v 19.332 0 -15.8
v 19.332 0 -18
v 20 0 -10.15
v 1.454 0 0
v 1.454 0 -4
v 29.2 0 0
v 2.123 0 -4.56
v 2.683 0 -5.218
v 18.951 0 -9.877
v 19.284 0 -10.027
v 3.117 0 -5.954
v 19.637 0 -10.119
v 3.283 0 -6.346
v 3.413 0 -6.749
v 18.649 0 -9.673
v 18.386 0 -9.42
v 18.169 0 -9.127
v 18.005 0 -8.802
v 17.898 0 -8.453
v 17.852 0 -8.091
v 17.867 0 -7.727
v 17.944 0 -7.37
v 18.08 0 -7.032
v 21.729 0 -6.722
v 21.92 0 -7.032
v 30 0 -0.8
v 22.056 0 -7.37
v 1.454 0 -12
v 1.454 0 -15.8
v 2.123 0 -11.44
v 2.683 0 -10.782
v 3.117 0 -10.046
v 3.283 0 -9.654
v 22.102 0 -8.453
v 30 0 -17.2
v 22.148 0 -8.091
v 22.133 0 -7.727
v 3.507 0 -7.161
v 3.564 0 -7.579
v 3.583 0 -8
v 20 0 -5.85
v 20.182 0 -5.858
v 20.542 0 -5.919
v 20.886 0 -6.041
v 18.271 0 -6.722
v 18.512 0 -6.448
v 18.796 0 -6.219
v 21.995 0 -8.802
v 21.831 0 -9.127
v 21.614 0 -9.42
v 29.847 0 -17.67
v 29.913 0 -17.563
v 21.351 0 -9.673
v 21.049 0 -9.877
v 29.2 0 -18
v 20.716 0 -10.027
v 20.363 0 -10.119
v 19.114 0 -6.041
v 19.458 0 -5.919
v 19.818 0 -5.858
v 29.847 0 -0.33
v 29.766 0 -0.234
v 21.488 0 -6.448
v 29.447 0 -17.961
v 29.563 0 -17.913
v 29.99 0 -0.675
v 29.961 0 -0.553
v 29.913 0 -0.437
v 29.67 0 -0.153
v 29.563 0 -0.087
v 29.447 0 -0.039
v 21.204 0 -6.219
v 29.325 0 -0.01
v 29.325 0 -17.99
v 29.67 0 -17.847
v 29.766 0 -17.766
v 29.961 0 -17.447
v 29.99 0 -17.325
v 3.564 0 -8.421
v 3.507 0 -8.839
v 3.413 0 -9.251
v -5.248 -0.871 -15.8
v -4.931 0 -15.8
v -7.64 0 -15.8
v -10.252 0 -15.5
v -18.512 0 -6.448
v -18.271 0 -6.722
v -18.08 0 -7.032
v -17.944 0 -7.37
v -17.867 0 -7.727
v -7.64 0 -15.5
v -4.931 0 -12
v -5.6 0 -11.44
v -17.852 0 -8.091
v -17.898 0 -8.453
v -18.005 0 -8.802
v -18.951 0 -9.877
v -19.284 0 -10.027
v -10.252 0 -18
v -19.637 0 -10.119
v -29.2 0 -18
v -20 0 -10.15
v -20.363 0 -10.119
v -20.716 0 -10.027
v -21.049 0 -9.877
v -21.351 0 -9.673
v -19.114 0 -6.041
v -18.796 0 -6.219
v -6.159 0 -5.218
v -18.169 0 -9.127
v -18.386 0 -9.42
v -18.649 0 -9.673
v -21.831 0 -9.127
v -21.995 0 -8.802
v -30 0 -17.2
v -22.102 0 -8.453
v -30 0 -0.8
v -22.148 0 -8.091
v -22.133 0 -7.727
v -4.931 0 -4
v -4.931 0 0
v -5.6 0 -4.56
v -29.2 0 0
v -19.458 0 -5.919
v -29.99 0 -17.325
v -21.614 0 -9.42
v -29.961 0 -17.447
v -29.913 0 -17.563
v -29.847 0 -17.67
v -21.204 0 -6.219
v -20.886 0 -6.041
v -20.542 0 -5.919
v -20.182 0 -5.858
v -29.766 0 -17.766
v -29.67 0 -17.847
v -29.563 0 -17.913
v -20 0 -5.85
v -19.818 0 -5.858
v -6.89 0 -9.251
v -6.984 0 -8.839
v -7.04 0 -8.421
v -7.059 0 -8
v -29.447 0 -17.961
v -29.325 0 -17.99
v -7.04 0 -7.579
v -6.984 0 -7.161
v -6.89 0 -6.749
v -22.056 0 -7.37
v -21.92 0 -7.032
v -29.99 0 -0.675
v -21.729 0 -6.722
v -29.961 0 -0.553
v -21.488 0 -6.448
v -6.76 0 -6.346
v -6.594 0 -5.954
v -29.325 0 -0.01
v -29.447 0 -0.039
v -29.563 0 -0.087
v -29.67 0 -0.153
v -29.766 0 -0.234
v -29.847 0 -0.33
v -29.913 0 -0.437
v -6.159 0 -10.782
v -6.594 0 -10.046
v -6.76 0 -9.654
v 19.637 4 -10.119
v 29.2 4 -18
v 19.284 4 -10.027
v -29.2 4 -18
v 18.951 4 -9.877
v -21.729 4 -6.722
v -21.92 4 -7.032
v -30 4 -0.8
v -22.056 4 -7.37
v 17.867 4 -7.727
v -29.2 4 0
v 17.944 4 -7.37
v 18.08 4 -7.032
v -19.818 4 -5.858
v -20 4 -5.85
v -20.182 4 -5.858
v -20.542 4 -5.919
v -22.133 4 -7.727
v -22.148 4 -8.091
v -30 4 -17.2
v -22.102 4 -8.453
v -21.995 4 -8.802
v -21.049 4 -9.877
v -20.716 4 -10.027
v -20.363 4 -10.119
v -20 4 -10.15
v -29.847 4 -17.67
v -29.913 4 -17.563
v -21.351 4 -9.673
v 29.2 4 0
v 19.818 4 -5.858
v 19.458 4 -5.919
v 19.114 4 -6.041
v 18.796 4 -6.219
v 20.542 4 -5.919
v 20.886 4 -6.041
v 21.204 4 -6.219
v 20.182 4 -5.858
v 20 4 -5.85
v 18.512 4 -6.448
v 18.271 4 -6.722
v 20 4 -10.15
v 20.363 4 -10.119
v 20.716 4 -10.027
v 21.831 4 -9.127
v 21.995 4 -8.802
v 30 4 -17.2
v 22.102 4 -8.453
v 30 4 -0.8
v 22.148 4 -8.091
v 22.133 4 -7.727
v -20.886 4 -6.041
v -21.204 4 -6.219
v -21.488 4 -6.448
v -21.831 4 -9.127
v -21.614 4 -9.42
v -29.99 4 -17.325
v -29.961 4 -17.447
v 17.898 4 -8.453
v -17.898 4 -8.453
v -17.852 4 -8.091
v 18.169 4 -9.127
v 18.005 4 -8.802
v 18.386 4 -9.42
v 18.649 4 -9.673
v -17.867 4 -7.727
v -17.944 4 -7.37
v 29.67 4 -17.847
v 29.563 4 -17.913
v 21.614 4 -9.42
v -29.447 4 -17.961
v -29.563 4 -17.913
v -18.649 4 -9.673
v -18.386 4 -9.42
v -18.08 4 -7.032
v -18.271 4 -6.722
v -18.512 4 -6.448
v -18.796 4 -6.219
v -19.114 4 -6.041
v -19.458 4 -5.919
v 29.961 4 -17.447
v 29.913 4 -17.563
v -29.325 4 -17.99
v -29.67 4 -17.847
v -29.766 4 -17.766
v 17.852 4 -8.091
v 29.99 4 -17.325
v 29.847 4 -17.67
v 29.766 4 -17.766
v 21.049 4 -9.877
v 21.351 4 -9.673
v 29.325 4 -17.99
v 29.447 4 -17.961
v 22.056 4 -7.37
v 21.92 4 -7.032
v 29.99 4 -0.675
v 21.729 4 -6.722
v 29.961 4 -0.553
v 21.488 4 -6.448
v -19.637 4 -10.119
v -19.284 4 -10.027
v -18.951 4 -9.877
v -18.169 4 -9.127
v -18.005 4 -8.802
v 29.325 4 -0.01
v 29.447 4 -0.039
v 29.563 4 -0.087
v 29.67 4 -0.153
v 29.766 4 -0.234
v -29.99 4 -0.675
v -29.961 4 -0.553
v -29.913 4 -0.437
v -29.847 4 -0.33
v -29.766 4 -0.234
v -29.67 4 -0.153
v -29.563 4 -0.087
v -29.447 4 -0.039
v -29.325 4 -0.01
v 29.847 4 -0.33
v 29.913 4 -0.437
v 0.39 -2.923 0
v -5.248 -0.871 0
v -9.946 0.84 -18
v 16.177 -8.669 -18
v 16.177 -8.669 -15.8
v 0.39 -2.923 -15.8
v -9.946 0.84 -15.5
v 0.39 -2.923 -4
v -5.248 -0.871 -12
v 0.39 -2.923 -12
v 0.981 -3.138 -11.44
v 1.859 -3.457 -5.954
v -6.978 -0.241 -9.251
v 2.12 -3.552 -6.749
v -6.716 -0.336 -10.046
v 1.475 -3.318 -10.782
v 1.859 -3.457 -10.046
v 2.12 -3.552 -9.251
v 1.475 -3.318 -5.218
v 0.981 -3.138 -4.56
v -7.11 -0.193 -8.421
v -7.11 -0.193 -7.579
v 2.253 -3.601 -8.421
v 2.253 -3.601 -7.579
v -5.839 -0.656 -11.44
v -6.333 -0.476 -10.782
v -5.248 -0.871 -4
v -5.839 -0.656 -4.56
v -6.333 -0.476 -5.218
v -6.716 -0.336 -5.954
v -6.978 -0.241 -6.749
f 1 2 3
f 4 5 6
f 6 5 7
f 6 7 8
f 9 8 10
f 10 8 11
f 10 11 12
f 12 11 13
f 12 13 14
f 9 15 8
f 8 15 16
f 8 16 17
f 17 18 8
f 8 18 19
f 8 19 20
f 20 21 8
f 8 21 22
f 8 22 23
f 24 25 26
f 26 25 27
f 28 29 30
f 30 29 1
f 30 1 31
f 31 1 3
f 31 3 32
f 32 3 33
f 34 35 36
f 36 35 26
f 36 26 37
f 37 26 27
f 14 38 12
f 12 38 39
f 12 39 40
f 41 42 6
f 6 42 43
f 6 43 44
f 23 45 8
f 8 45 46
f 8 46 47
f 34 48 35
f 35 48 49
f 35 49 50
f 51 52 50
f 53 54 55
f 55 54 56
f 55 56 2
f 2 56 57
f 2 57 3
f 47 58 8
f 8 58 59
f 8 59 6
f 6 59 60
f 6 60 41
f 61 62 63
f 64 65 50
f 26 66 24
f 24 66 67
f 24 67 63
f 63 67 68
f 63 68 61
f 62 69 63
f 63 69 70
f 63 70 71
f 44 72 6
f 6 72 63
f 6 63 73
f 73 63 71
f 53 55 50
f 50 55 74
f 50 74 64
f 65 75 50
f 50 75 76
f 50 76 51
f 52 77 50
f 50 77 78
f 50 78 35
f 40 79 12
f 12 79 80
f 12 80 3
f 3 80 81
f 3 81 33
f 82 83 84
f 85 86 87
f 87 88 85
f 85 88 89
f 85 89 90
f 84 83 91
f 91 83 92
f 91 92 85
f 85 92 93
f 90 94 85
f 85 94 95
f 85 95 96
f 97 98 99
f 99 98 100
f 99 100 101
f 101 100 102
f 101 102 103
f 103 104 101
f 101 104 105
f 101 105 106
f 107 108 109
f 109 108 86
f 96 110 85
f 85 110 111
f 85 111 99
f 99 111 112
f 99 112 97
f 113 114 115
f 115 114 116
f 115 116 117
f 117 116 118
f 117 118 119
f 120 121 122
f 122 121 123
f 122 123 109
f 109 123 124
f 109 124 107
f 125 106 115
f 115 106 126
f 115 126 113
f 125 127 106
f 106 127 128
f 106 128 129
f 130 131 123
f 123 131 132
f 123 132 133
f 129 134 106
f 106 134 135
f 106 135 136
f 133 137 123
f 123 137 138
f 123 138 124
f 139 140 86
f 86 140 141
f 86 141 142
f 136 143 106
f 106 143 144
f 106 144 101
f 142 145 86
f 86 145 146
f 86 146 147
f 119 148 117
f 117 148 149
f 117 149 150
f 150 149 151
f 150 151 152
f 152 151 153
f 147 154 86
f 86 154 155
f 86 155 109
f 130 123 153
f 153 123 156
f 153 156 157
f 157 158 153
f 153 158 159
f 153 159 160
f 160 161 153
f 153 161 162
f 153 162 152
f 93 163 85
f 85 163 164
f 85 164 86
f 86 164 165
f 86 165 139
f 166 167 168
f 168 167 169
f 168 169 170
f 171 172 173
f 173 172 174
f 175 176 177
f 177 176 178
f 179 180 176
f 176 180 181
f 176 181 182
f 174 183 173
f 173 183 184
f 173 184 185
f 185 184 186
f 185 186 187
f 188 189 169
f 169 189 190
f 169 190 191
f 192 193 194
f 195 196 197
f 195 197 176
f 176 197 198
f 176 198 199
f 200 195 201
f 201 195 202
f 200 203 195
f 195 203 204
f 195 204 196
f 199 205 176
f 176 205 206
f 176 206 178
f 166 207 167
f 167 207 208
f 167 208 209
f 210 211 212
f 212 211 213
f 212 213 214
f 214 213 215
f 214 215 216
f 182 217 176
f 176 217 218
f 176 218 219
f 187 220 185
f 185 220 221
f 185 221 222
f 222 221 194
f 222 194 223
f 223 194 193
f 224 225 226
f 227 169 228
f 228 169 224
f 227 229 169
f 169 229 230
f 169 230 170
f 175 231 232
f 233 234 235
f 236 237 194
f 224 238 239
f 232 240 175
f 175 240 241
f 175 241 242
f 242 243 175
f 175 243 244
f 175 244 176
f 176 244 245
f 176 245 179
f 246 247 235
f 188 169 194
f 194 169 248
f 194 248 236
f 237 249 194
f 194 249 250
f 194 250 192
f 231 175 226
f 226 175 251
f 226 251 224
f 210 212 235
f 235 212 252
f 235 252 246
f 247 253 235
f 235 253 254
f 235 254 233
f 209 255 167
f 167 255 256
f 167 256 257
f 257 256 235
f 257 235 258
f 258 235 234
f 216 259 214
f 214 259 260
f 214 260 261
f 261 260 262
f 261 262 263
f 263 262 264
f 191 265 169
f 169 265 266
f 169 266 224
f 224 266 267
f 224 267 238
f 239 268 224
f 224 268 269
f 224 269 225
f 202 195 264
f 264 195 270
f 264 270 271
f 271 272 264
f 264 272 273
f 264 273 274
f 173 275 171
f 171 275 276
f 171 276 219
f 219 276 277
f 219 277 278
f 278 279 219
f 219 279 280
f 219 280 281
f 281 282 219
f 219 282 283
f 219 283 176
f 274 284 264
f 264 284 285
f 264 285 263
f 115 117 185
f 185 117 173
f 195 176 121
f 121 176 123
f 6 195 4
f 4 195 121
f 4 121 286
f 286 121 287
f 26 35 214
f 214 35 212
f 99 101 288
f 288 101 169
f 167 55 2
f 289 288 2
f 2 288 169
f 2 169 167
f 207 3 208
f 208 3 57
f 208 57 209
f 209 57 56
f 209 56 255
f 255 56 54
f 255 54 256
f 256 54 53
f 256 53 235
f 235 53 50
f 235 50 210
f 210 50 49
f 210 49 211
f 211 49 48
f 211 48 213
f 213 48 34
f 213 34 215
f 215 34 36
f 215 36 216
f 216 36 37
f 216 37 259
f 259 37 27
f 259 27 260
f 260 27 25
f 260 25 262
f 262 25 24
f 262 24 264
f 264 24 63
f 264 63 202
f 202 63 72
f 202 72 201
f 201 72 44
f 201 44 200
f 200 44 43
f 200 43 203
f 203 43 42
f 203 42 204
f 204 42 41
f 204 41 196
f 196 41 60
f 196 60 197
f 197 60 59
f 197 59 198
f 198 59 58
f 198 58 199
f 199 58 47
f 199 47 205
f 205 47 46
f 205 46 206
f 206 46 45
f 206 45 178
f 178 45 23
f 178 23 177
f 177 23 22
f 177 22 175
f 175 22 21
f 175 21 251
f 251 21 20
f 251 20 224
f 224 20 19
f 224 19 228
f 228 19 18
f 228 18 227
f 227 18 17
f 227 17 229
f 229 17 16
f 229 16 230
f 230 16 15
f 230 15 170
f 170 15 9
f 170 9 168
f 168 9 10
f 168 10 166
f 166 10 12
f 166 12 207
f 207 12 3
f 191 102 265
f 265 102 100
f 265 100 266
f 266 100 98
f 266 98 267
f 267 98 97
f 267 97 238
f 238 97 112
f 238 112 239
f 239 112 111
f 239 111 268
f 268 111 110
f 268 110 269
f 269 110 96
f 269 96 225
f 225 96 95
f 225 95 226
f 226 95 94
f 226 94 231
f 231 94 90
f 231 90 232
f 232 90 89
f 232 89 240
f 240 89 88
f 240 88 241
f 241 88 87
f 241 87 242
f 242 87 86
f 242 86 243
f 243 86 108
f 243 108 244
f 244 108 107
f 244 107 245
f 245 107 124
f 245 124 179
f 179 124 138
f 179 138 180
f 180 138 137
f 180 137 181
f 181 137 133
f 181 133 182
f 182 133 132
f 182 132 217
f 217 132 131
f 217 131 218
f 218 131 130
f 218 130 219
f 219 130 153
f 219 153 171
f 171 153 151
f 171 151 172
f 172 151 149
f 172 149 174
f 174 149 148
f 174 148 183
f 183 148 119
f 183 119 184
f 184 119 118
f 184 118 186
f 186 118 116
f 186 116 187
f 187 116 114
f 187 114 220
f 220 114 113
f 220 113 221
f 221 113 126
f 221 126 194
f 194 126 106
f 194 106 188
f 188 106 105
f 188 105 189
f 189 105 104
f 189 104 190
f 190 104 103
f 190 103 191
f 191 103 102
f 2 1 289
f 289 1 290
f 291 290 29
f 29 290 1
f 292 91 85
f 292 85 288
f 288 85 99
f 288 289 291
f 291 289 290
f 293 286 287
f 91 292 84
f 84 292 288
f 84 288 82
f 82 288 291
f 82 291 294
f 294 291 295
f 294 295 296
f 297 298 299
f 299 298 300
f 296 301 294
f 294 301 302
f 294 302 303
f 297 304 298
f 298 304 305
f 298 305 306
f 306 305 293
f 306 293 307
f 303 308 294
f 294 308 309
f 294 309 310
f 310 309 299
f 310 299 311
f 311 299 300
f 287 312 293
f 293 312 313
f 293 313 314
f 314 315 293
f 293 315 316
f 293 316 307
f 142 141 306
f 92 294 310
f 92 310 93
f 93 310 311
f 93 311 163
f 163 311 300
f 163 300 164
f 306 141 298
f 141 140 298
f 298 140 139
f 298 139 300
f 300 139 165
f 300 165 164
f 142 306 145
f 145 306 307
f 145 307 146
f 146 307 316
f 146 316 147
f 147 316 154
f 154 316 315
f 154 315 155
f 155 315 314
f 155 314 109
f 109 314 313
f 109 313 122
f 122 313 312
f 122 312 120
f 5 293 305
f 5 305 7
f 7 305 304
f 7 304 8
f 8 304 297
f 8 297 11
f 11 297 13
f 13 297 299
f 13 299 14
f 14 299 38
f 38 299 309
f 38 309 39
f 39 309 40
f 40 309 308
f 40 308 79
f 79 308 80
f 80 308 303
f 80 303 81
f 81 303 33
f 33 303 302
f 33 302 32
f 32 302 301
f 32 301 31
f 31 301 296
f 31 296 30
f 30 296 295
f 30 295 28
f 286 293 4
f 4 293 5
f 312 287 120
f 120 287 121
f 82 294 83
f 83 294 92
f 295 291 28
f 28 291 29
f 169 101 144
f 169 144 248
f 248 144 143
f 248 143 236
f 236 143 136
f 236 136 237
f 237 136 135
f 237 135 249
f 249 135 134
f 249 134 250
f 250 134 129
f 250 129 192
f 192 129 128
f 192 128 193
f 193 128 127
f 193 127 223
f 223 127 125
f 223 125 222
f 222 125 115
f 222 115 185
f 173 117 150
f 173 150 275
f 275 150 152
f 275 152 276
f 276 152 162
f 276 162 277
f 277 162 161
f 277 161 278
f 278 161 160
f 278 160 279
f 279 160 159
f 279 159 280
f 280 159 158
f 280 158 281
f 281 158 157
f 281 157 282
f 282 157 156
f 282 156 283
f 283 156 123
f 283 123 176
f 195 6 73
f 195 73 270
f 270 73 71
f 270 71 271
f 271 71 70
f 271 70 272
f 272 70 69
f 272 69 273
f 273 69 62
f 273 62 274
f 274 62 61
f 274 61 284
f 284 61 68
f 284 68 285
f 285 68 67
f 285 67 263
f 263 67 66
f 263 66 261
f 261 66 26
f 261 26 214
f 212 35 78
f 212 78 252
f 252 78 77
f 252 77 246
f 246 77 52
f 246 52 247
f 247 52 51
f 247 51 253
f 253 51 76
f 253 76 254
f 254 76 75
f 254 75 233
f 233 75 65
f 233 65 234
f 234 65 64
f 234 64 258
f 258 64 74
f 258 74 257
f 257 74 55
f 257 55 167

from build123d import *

# Parameters (mm, degrees)
SKETCH_1_W          = 60
SKETCH_1_H          = 18
SKETCH_1_R          = 2.15
EXTRUDE_1_DEPTH     = 4
EXTRUDE_3_DEPTH     = 2.2
CUT_EXTRUDE_1_DEPTH = 2.5
EXTRUDE_2_DEPTH     = 3.981010851
FILLET_1_R          = 0.8


with BuildPart() as part:
    # 草图1 → 凸台-拉伸1 (new body)
    with BuildSketch(Plane(origin=(0, 0, 0), x_dir=(1, 0, 0), z_dir=(0, 1, 0))):
        with Locations((0, 9)):
            Rectangle(SKETCH_1_W, SKETCH_1_H)
        with Locations(Location((-20, 8, 0), (0, 0, 270))):
            Circle(SKETCH_1_R, mode=Mode.SUBTRACT)
        with Locations(Location((20, 8, 0), (0, 0, 270))):
            Circle(SKETCH_1_R, mode=Mode.SUBTRACT)
    extrude(amount=EXTRUDE_1_DEPTH)

    # 草图5 → 凸台-拉伸3 (add)
    with BuildSketch(Plane(origin=(0, 0, -18), x_dir=(-1, 0, 0), z_dir=(0, 0, -1))):
        Polygon((-19.332346445, 0), (10.038960076, 0), (10.380980219, -0.939692621), (-15.554536115, -10.379448577), align=None)
    extrude(amount=-EXTRUDE_3_DEPTH)

    # 草图6 → 切除-拉伸1 (cut)
    with BuildSketch(Plane(origin=(0, 0, -18), x_dir=(-1, 0, 0), z_dir=(0, 0, -1))):
        Polygon((-16.365155241, -8.73705171), (-9.866772518, -26.591211505), (16.444620864, -17.014647492), (9.946238141, 0.839512303), align=None)
    extrude(amount=-CUT_EXTRUDE_1_DEPTH, mode=Mode.SUBTRACT)

    # 草图4 → 凸台-拉伸2 (add)
    with BuildSketch(Plane(origin=(0.467911114, 1.285575219, 0), x_dir=(0, 0, -1), z_dir=(0.34202014332566943, 0.9396926207859081, 0))):
        with BuildLine():
            Line((0, 4.633536704), (4, 4.633536704))
            ThreePointArc((4, 4.633536704), (8, 6.633536704), (12, 4.633536704))
            Line((12, 4.633536704), (18, 4.633536704))
            Line((18, 4.633536704), (18, -1.366463296))
            Line((18, -1.366463296), (12, -1.366463296))
            ThreePointArc((12, -1.366463296), (8, -3.366463296), (4, -1.366463296))
            Line((4, -1.366463296), (0, -1.366463296))
            Line((0, -1.366463296), (0, 4.633536704))
        make_face()
    extrude(amount=-EXTRUDE_2_DEPTH)

    # 圆角1
    fillet_1_edges = [part.edges().sort_by_distance(p)[0] for p in [
        (-30, 2, -18),
        (30, 2, -18),
        (30, 2, 0),
        (-30, 2, 0),
    ]]
    fillet(fillet_1_edges, radius=FILLET_1_R)


solid = part.part
